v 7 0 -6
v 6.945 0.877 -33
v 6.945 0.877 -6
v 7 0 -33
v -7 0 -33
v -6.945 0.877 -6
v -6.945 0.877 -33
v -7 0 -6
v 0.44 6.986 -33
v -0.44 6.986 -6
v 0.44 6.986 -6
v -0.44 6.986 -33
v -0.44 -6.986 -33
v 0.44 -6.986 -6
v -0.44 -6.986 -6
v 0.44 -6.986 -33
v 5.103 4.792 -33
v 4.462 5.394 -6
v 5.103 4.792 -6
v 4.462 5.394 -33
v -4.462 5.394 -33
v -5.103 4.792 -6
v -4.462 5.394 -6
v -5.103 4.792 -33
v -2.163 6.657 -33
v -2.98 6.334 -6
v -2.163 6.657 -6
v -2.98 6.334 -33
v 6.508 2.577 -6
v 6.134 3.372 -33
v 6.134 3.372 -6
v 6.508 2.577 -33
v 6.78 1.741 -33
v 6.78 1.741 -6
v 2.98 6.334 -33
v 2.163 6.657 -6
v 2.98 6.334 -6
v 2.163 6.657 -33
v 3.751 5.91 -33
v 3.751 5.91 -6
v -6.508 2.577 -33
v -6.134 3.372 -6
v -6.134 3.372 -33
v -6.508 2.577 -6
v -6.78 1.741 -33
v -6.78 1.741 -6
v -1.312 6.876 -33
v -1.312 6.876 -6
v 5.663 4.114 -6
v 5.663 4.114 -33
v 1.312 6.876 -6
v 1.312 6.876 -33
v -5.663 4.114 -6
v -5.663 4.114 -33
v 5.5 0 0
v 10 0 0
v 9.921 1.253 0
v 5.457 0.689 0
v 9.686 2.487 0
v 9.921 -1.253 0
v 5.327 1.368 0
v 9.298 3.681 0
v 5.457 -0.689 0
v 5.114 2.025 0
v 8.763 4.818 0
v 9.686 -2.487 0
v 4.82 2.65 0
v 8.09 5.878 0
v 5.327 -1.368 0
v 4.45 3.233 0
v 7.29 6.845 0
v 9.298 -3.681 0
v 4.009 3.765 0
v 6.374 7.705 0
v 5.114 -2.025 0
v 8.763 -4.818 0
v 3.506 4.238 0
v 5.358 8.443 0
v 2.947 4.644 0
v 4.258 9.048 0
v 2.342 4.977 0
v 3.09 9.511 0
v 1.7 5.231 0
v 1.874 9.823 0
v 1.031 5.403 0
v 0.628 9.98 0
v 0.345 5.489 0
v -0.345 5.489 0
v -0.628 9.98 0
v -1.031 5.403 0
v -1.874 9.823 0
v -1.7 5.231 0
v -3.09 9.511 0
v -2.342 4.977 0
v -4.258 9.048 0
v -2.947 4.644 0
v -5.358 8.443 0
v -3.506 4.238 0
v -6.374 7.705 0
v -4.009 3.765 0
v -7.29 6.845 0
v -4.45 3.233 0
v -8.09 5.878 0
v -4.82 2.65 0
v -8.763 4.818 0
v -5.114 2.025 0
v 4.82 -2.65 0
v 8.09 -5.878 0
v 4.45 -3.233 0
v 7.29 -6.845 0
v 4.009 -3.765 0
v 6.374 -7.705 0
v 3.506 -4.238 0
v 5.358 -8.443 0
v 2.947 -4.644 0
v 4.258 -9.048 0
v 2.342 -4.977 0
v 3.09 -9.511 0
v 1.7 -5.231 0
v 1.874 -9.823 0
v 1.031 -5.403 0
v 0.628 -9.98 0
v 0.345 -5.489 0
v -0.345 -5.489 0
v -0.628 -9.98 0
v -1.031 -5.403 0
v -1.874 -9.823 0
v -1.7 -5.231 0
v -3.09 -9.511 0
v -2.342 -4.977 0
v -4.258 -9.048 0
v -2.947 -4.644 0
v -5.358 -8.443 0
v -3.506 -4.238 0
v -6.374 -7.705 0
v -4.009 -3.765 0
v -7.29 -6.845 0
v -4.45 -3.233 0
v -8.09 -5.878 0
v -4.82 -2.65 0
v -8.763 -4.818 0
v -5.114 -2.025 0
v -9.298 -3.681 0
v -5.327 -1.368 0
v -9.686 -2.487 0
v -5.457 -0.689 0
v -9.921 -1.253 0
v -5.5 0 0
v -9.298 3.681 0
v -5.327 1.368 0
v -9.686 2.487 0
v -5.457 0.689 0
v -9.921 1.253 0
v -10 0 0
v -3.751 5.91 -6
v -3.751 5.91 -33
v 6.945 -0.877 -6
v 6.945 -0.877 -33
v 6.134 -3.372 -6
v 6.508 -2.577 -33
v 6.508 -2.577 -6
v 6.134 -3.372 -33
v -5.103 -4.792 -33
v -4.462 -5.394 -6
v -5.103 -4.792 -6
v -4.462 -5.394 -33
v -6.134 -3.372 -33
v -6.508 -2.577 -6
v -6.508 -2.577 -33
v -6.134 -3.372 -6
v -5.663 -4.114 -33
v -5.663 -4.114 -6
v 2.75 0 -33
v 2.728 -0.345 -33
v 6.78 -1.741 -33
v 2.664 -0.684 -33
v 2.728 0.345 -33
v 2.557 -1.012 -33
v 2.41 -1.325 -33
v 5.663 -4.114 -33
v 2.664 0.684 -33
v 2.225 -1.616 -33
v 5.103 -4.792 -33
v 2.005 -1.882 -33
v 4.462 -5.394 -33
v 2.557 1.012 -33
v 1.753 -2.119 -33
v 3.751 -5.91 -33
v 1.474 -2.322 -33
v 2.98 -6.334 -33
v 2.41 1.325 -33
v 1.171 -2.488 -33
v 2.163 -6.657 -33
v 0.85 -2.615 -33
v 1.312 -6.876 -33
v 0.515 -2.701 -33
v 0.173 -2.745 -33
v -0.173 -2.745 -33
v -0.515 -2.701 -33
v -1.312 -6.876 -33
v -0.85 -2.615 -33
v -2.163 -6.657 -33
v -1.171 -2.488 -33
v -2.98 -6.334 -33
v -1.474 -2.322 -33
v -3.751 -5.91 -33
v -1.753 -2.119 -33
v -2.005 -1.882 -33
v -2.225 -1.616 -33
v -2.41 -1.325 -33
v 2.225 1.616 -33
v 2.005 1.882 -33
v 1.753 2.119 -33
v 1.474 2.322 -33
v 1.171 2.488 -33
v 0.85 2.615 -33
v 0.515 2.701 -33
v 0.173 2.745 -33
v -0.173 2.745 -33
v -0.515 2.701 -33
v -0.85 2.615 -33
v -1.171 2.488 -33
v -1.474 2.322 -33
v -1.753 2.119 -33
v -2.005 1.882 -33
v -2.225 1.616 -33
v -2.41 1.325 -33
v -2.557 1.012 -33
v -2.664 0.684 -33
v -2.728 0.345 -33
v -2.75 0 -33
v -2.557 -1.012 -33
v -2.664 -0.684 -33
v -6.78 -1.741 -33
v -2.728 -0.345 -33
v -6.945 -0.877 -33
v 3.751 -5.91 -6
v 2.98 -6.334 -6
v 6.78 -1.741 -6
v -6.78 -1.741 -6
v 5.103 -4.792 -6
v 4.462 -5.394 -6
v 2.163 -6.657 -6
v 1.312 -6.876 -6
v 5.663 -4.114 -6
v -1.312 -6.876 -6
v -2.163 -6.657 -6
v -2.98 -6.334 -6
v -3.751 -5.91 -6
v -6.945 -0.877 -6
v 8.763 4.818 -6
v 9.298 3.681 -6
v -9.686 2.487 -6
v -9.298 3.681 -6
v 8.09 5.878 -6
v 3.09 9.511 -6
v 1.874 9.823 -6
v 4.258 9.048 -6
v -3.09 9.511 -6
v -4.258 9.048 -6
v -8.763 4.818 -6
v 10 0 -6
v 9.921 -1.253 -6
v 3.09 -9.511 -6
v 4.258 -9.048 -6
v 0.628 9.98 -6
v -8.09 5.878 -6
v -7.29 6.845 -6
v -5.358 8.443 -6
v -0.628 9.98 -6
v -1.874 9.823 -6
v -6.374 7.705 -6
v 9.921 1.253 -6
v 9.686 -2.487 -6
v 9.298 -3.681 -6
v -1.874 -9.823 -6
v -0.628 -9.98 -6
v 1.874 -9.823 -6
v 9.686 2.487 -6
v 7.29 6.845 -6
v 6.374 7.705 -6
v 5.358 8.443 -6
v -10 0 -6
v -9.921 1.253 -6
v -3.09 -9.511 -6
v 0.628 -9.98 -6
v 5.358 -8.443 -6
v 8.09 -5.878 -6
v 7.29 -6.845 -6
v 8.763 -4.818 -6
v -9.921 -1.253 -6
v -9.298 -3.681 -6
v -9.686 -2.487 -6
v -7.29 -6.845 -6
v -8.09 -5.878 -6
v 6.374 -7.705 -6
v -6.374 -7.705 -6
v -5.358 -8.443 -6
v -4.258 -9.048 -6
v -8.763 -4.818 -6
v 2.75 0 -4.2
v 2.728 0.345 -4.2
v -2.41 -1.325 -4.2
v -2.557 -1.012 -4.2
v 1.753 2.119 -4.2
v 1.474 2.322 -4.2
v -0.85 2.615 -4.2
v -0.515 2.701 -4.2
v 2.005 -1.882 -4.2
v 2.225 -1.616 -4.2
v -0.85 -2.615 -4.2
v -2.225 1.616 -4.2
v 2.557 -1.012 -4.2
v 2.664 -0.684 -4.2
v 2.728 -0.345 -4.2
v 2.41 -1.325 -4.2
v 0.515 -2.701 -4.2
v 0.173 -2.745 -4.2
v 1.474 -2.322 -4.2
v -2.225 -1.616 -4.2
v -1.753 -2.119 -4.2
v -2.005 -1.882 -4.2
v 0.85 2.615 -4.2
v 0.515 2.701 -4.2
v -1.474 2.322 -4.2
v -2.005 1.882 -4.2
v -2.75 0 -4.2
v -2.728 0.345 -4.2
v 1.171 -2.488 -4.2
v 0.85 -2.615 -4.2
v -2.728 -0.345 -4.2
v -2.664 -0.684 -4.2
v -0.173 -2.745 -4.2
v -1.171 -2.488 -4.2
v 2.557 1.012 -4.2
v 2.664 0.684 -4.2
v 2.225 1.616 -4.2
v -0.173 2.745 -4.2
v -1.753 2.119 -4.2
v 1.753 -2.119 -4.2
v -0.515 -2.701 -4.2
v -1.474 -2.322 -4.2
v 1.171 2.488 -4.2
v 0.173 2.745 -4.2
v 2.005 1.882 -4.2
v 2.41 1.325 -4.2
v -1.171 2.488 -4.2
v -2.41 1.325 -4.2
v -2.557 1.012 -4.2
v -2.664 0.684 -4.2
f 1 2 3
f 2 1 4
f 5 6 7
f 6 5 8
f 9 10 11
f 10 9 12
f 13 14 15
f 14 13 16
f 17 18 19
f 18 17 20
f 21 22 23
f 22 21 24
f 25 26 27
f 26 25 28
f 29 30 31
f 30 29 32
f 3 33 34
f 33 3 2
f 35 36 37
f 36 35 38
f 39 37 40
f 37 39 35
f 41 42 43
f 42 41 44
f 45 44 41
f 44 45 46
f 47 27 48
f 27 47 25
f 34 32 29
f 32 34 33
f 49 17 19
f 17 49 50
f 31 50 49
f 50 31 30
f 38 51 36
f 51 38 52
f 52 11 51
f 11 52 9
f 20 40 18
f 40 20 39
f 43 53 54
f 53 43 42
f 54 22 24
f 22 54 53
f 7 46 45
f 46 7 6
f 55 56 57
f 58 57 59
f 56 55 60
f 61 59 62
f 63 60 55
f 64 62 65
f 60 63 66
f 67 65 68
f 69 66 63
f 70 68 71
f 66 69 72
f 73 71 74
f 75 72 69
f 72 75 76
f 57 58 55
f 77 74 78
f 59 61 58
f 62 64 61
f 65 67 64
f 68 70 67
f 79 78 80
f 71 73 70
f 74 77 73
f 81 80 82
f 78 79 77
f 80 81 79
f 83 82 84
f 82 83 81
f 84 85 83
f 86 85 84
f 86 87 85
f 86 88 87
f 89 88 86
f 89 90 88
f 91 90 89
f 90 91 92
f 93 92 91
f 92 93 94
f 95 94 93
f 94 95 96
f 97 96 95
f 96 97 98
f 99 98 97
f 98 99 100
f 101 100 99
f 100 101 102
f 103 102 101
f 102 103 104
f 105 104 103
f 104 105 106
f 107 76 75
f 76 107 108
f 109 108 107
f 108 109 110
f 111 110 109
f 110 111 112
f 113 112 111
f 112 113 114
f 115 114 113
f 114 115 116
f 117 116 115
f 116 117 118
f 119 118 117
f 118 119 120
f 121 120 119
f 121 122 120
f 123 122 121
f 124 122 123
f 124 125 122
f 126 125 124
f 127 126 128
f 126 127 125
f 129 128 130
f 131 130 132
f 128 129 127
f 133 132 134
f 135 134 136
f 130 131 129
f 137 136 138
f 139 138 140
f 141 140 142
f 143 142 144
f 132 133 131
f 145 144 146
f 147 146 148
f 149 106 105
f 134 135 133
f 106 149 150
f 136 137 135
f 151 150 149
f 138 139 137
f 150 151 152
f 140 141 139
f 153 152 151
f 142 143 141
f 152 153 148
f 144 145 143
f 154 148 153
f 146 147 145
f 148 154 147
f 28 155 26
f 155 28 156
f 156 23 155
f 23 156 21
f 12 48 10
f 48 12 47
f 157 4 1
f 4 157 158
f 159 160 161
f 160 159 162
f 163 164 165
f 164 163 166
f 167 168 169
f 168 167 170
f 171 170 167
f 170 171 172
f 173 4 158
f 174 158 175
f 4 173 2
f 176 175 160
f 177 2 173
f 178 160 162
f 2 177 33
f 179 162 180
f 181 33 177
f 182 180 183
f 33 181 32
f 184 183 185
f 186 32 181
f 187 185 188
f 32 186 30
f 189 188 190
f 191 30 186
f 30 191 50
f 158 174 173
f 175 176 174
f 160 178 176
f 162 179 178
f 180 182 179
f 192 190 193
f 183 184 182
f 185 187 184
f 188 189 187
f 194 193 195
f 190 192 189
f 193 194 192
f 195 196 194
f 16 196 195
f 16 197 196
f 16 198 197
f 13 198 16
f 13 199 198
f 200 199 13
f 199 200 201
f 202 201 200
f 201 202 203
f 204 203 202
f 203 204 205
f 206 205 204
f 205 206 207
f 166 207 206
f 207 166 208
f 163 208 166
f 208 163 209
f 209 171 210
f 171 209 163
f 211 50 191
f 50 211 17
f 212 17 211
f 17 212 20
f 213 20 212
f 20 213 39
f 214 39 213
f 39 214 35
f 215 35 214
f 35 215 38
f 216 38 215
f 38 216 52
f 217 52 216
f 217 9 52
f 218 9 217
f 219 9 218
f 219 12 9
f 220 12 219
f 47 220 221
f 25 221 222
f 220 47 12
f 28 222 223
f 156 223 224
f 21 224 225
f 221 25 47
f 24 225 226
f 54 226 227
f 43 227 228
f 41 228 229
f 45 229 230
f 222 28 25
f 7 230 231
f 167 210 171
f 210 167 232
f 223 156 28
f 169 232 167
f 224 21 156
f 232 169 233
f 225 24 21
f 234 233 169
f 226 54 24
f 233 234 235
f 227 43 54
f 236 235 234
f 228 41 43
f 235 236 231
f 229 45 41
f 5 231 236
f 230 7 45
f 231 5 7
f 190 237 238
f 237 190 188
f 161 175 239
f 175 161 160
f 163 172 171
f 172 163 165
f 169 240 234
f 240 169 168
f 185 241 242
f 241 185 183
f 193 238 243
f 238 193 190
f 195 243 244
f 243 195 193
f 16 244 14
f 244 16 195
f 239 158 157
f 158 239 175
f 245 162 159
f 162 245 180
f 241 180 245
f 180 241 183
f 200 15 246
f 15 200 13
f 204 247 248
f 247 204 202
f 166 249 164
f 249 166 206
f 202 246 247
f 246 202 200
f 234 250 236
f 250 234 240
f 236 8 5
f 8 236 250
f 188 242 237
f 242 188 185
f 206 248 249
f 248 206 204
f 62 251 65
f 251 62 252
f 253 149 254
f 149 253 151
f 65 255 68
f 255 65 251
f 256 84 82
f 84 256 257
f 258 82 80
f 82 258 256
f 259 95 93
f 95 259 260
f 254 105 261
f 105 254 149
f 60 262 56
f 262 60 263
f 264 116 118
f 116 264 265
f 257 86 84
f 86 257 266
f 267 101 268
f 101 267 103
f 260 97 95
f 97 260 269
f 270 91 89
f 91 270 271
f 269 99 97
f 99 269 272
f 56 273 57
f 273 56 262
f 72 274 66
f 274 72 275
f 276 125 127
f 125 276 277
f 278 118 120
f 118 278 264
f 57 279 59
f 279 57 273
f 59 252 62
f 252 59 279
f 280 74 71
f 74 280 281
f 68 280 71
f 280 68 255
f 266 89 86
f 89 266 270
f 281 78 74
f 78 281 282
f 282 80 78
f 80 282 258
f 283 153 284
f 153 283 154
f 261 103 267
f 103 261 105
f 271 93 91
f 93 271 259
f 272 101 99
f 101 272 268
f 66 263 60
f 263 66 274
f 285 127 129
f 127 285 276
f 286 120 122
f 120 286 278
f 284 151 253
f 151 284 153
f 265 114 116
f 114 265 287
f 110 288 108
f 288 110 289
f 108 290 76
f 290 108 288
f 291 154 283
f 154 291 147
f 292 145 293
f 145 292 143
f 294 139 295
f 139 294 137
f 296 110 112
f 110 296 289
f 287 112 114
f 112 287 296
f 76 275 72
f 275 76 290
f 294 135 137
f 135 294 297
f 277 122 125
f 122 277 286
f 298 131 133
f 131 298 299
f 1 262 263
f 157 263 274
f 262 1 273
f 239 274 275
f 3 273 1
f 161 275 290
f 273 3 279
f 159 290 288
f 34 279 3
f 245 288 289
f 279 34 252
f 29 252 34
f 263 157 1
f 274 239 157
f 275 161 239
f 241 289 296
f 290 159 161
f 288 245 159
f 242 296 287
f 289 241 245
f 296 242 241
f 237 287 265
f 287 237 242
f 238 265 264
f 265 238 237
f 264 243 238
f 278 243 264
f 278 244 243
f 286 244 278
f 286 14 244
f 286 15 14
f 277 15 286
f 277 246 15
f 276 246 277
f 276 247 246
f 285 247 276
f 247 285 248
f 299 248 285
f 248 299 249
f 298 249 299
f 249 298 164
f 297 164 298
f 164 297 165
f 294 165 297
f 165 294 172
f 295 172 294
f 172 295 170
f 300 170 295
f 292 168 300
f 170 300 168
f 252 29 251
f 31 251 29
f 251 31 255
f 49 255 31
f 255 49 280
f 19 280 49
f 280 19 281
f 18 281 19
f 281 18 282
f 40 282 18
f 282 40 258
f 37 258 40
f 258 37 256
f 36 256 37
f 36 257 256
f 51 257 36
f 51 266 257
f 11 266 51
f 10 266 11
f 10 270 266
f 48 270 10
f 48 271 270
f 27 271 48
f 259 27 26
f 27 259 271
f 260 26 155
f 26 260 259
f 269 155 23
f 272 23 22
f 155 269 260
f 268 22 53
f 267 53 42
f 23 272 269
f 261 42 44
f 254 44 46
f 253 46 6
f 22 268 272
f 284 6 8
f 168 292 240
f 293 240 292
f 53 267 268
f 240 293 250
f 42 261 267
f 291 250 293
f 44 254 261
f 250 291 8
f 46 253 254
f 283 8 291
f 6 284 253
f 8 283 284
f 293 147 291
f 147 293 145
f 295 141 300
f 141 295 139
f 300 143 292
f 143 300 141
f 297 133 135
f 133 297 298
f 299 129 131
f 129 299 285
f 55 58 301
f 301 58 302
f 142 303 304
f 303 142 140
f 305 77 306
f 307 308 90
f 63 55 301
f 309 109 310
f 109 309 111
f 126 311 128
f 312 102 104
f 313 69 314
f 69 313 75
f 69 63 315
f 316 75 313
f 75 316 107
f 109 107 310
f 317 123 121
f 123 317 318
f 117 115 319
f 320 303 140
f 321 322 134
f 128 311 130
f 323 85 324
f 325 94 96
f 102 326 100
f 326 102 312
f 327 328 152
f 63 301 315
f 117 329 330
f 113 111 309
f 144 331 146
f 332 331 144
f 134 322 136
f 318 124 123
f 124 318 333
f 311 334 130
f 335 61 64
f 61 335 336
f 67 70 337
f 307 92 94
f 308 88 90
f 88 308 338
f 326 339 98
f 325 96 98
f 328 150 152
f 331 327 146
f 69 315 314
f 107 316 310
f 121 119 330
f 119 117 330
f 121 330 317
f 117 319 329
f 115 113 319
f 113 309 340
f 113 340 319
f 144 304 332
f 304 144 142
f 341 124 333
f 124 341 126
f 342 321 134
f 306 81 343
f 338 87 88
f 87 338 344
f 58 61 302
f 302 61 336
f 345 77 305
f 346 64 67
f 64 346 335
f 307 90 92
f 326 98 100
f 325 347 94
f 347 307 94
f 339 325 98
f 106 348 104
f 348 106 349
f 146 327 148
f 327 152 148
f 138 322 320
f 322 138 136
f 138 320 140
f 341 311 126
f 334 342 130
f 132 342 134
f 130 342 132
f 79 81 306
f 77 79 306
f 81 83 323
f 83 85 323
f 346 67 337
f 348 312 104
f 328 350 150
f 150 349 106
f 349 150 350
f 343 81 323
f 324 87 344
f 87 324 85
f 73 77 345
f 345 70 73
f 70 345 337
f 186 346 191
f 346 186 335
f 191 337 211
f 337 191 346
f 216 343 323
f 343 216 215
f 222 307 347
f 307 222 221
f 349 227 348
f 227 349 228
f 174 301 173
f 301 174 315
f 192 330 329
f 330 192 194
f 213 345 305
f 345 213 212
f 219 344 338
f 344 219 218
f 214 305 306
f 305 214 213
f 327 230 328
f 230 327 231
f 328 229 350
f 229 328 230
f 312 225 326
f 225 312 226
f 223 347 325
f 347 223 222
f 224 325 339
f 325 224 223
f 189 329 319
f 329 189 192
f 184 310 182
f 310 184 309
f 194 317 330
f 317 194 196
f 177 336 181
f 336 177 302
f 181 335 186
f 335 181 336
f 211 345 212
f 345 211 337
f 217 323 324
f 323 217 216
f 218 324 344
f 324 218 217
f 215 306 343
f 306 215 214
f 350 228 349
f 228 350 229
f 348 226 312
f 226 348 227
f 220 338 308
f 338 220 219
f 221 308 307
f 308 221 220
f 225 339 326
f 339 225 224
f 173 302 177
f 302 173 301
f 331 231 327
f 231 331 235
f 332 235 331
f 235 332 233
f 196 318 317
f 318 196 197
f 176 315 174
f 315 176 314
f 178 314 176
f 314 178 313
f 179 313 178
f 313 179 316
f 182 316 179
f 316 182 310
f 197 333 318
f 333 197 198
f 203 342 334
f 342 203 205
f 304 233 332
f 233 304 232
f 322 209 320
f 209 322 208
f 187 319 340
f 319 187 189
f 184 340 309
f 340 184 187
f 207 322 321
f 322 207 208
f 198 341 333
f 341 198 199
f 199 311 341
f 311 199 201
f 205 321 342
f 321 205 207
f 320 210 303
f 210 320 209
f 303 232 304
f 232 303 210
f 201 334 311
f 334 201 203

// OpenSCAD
$fn = 50;


difference() {
	union() {
		translate(v = [0, 0, -33.0000000000]) {
			cylinder(h = 33, r = 7.0000000000);
		}
		translate(v = [0, 0, -6.0000000000]) {
			cylinder(h = 6, r = 10.0000000000);
		}
	}
	union() {
		translate(v = [0, 0, 0]) {
			rotate(a = [0, 0, 0]) {
				difference() {
					union() {
						#translate(v = [0, 0, -33.0000000000]) {
							cylinder(h = 33, r = 2.2500000000);
						}
						#translate(v = [0, 0, -4.2000000000]) {
							cylinder(h = 4.2000000000, r = 7.0000000000, r1 = 2.7500000000, r2 = 5.5000000000);
						}
						#translate(v = [0, 0, -33.0000000000]) {
							cylinder(h = 33, r = 2.7500000000);
						}
						#translate(v = [0, 0, -33.0000000000]) {
							cylinder(h = 33, r = 2.2500000000);
						}
					}
					union();
				}
			}
		}
	}
}
